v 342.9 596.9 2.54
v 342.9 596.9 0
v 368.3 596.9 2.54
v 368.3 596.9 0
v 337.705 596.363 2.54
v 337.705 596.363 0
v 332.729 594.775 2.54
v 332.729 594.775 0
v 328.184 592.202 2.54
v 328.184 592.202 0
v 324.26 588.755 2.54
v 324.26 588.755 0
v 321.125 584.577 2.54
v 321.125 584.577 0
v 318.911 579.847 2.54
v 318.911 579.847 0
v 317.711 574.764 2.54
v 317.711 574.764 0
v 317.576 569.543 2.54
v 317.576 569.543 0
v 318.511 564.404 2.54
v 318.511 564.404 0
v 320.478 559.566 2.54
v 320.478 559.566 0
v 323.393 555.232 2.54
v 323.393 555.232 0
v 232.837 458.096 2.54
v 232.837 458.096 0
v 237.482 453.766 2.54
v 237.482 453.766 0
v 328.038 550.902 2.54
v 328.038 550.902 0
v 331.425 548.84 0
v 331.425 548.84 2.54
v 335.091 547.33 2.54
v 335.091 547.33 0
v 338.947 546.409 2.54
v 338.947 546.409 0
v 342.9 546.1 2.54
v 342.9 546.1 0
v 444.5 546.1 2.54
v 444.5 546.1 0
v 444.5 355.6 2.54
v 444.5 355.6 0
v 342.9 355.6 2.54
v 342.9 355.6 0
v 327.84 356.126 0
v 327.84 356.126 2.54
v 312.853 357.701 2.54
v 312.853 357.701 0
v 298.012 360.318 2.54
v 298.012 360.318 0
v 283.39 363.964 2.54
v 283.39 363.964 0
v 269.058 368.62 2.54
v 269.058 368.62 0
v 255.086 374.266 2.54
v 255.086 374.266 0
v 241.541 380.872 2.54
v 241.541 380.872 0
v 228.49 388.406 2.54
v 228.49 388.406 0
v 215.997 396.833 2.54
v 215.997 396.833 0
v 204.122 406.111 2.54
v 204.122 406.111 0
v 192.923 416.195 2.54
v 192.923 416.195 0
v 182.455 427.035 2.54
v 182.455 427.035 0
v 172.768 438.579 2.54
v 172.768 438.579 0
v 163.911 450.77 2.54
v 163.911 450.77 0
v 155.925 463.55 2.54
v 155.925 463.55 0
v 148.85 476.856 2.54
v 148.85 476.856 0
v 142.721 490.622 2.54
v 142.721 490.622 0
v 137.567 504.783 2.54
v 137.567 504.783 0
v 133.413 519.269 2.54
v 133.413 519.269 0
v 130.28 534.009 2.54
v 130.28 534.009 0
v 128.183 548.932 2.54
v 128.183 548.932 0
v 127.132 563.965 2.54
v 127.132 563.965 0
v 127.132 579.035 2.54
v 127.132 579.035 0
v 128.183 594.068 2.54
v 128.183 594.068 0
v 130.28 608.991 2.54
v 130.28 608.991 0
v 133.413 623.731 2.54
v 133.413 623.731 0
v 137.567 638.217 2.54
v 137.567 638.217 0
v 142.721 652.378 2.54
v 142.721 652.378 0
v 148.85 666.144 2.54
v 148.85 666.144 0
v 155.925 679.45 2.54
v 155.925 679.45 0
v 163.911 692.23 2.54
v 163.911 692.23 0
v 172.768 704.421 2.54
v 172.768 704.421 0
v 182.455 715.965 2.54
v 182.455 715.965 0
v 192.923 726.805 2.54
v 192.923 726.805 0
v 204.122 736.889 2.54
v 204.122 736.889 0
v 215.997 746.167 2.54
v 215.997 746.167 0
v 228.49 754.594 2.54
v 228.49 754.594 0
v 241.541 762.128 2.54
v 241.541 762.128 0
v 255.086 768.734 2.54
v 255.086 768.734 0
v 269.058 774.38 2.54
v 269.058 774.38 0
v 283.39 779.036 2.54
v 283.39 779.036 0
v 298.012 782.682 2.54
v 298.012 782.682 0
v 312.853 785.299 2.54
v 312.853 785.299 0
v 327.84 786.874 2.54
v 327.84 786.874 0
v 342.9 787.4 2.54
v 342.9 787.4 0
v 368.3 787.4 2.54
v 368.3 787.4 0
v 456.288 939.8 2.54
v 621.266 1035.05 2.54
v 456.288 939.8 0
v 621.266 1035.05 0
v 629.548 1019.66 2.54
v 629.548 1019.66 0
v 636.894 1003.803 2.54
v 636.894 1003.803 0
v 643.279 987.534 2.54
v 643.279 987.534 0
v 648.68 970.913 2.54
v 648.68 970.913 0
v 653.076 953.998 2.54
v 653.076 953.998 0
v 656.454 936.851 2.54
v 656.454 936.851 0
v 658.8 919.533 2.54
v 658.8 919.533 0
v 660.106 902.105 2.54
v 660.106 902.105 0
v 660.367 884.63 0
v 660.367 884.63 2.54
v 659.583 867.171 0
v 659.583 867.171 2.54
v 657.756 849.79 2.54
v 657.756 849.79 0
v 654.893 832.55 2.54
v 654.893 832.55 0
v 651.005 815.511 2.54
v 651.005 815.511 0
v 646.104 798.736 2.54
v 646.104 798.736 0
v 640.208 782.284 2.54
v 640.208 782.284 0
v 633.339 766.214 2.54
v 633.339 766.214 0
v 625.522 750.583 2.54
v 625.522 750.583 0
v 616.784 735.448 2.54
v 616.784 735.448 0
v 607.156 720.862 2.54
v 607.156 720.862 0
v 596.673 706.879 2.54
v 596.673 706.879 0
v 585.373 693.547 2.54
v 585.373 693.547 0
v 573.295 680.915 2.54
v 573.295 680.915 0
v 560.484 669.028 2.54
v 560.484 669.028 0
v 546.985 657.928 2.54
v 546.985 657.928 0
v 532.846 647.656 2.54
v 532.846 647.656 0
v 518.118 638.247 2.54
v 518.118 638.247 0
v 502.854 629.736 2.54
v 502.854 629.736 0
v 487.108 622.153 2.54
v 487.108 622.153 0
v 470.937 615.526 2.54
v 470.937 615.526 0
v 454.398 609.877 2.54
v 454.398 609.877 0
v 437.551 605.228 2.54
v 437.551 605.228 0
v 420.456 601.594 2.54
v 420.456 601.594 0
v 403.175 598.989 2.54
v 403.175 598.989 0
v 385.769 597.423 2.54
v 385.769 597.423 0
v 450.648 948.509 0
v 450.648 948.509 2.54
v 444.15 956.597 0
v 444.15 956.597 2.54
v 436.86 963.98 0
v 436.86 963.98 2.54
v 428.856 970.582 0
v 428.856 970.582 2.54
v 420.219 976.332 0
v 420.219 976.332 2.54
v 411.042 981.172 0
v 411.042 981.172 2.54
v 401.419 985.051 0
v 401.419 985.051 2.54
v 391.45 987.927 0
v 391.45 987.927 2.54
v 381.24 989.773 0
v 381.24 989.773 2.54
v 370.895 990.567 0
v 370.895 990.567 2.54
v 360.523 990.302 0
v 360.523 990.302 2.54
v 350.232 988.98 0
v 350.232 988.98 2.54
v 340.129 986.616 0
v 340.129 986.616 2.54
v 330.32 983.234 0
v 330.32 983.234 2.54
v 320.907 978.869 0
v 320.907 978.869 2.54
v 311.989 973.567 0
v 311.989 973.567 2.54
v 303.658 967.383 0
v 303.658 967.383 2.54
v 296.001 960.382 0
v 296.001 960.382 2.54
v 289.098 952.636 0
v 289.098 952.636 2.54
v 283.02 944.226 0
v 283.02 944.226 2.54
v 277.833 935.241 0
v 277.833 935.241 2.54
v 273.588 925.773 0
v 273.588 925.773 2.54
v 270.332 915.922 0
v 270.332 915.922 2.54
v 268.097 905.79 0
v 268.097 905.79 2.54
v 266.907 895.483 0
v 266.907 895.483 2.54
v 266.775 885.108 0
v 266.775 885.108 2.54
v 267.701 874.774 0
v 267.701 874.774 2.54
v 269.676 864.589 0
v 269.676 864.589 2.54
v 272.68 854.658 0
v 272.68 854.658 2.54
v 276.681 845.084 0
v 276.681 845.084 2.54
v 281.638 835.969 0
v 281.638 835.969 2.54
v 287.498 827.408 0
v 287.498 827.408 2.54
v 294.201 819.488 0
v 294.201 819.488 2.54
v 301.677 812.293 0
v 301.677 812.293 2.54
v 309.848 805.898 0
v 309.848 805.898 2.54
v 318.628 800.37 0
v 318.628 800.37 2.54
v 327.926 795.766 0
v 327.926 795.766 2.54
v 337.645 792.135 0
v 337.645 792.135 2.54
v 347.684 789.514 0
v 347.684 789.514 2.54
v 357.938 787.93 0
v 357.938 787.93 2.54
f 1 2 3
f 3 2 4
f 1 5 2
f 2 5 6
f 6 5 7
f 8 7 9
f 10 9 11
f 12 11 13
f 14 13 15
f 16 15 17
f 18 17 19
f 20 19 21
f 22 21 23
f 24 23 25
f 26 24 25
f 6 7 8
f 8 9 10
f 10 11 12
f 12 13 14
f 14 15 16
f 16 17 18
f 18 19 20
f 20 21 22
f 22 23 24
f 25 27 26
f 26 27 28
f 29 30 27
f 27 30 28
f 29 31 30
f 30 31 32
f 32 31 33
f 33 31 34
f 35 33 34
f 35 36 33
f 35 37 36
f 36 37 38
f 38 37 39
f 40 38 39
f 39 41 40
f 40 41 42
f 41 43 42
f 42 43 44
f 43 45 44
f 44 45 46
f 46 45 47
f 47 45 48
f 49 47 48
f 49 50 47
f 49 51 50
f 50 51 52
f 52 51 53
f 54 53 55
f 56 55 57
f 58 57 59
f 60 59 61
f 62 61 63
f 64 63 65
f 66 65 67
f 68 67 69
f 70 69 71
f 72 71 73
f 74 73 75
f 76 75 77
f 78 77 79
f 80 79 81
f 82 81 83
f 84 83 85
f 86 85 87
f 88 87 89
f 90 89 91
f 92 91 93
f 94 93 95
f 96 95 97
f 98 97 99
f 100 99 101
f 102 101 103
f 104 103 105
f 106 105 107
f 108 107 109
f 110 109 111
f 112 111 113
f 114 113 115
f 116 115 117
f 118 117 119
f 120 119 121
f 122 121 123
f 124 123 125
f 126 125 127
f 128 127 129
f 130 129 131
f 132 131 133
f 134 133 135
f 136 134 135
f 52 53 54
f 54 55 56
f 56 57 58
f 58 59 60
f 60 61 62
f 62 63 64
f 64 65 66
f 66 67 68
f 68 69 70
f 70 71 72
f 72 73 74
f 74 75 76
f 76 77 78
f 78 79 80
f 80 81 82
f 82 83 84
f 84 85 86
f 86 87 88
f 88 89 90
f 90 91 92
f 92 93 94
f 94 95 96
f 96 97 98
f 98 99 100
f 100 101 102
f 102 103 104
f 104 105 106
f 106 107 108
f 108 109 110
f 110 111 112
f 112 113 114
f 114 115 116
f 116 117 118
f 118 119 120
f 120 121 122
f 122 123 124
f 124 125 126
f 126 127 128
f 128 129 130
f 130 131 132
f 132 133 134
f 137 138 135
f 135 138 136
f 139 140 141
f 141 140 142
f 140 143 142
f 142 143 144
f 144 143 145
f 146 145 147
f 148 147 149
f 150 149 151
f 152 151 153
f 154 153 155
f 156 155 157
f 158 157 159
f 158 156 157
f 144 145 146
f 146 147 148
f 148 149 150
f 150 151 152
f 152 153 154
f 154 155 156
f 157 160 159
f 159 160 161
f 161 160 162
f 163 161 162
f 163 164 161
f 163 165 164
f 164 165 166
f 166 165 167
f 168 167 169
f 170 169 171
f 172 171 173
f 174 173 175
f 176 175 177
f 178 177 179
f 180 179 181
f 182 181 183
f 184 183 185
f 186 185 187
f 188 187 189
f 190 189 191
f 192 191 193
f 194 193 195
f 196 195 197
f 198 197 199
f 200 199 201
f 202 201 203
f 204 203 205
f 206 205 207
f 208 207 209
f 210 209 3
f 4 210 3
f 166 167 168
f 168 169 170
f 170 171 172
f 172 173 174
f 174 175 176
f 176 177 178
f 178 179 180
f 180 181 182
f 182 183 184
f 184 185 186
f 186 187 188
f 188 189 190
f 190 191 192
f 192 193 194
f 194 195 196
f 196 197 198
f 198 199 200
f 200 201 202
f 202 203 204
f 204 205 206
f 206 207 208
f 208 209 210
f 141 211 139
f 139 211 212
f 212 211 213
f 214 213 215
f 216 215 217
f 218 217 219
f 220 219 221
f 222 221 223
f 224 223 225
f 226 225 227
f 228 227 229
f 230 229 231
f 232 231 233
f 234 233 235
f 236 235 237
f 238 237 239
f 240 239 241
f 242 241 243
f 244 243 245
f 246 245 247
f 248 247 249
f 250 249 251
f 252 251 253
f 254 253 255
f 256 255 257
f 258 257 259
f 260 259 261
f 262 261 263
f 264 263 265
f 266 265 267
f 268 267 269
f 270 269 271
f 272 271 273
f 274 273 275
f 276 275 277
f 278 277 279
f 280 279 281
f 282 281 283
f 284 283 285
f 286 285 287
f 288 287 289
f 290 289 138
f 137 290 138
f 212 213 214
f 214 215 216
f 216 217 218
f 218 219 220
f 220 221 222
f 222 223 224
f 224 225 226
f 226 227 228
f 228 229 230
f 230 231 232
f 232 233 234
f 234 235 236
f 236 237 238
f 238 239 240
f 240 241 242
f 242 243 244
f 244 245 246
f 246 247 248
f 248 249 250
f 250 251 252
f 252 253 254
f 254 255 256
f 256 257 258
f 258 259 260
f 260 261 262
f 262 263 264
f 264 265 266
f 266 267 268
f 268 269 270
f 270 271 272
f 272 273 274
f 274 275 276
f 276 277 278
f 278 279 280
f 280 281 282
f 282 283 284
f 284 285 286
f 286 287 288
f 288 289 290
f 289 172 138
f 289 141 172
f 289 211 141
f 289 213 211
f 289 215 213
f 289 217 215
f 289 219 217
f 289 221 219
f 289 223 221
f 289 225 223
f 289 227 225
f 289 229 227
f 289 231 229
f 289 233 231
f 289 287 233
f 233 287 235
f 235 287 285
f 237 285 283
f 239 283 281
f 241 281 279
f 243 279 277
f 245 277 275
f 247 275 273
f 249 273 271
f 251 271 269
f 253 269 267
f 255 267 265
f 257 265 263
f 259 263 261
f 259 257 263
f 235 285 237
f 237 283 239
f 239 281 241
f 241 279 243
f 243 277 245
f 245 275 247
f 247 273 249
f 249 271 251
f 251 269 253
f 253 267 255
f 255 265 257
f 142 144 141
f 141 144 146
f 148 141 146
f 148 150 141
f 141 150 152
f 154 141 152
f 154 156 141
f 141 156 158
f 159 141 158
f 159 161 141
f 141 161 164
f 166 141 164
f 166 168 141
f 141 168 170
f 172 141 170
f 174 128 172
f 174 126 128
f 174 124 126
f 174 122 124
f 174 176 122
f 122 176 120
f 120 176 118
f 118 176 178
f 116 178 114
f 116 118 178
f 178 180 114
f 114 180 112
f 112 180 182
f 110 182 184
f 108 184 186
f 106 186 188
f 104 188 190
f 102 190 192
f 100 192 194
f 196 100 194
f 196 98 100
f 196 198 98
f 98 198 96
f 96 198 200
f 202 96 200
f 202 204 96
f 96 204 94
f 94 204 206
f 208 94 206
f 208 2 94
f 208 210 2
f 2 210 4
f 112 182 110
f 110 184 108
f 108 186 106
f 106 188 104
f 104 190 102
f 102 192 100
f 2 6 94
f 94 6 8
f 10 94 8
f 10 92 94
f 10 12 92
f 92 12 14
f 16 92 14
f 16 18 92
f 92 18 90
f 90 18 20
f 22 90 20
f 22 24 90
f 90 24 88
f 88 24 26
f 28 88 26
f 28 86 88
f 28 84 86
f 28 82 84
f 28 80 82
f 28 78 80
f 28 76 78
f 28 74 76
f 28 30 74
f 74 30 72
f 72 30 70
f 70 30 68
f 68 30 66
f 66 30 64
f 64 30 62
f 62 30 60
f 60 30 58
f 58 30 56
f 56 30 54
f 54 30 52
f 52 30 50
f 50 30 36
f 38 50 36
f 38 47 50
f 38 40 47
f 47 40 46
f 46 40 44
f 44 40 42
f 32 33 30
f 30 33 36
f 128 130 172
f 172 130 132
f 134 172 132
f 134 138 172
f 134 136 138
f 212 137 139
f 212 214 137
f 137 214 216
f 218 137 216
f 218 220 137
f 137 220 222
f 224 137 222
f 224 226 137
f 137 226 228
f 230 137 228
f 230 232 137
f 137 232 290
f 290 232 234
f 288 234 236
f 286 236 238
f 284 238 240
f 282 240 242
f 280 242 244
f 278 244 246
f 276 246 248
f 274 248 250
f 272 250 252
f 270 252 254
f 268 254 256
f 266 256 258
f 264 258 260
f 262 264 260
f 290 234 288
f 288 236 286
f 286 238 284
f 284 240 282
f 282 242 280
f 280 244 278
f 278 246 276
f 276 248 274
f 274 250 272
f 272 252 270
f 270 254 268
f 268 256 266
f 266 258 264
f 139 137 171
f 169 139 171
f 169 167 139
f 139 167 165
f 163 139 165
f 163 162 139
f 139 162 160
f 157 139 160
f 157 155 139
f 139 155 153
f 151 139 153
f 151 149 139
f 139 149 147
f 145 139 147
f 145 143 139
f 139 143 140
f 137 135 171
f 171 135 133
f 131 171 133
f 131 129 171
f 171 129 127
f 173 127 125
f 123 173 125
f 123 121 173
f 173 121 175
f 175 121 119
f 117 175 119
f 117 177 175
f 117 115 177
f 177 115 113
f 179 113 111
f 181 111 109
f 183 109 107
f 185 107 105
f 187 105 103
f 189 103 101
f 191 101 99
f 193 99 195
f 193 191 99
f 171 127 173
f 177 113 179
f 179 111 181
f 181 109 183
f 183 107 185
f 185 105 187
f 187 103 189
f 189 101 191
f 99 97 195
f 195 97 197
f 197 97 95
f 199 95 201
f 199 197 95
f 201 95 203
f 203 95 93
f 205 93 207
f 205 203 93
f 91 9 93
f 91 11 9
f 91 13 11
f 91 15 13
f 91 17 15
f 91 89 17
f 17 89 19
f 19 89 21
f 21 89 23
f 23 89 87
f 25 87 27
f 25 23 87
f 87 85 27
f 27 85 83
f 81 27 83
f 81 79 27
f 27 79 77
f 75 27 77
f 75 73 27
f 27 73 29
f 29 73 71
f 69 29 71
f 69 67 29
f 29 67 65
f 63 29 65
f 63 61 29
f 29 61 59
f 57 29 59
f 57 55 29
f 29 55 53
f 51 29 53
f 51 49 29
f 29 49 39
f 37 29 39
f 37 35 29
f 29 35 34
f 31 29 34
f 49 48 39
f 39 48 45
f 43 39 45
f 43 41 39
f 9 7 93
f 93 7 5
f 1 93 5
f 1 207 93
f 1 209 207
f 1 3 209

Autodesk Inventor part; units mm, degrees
ref_plane "YZ Plane" through (0, 0, 0) normal (1, 0, 0) x (0, 1, 0)
ref_plane "XZ Plane" through (0, 0, 0) normal (0, 1, 0) x (-1, 0, 0)
ref_plane "XY Plane" through (0, 0, 0) normal (0, 0, 1) x (1, 0, 0)
sketch "Sketch1" plane through (0, 0, 0) normal (0, 0, 1) x (1, 0, 0)
  arc A0 (368.3, 596.9) -> (621.266, 1035.05) centre (368.3, 889) ccw
  circle A1 centre (368.3, 889) radius 101.6
  line L0 (621.266, 1035.05) -> (368.3, 889) construction
  line L1 (456.2882, 939.8) -> (14.5272, 1704.9525) construction
  line L2 (456.2882, 939.8) -> (-427.2338, 939.8) construction
  line L3 (368.3, 889) -> (368.3, 596.9) construction
  line L4 (368.3, 596.9) -> (342.9, 596.9)
  line L5 (342.9, 596.9) -> (342.9, 787.4) construction
  line L6 (342.9, 787.4) -> (368.3, 787.4)
  line L7 (0, 0) -> (685.8, 0) construction
  line L8 (685.8, 0) -> (685.8, 1498.6) construction
  line L9 (685.8, 1498.6) -> (0, 1498.6) construction
  line L10 (0, 1498.6) -> (0, 0) construction
  line L11 (241.3, 0) -> (444.5, 0) construction
  line L12 (444.5, 0) -> (444.5, 558.8) construction
  line L13 (444.5, 558.8) -> (241.3, 558.8) construction
  line L14 (241.3, 558.8) -> (241.3, 0) construction
  line L15 (241.3, 135.2277) -> (0, 135.2277) construction
  line L16 (444.5, 135.2277) -> (685.8, 135.2277) construction
  line L17 (456.2882, 939.8) -> (621.266, 1035.05)
  arc A2 (342.9, 596.9) -> (342.9, 546.1) centre (342.9, 571.5) ccw
  arc A3 (342.9, 787.4) -> (342.9, 355.6) centre (342.9, 571.5) ccw
  line L18 (342.9, 546.1) -> (444.5, 546.1)
  line L19 (342.9, 355.6) -> (444.5, 355.6)
  line L20 (444.5, 355.6) -> (444.5, 546.1)
  arc A4 (342.9, 787.4) -> (343.2908, 790.5262) centre (342.9, 788.9875) ccw
  circle A5 centre (342.9, 571.5) radius 25.4
  line L21 (323.3933, 555.232) -> (232.8369, 458.0957)
  line L22 (237.4816, 453.7656) -> (232.8369, 458.0957)
  line L23 (237.4816, 453.7656) -> (328.038, 550.9019)
  line L24 (328.038, 550.9019) -> (323.3933, 555.232)
  line L25 (357.762, 592.0981) -> (448.3184, 689.2344)
  line L26 (448.3184, 689.2344) -> (452.9631, 684.9043)
  line L27 (452.9631, 684.9043) -> (362.4067, 587.768)
  line L28 (362.4067, 587.768) -> (357.762, 592.0981)
  dimension "d0" = 203.2
  dimension "d2" = 60
  dimension "d3" = 120
  dimension "d5" = 685.8
  dimension "d6" = 1498.6
  dimension "d7" = 203.2
  dimension "d8" = 558.8
  dimension "d9" = 190.5
  dimension "d14" = 25.4
  dimension "d15" = 939.8
  dimension "d21" = 25.4
  dimension "d22" = 101.6
  dimension "d25" = 6.35
extrude "Extrusion2" add sketch "Sketch1" along normal blind 2.54 contours L4 L25 L26 L27 A0 | L27 L26 L25 L4 A2 L21 L22 L23 L18 L20 L19 A3 L6 A1 L17 A0 | A1
properties part number "ShooterSketch"
